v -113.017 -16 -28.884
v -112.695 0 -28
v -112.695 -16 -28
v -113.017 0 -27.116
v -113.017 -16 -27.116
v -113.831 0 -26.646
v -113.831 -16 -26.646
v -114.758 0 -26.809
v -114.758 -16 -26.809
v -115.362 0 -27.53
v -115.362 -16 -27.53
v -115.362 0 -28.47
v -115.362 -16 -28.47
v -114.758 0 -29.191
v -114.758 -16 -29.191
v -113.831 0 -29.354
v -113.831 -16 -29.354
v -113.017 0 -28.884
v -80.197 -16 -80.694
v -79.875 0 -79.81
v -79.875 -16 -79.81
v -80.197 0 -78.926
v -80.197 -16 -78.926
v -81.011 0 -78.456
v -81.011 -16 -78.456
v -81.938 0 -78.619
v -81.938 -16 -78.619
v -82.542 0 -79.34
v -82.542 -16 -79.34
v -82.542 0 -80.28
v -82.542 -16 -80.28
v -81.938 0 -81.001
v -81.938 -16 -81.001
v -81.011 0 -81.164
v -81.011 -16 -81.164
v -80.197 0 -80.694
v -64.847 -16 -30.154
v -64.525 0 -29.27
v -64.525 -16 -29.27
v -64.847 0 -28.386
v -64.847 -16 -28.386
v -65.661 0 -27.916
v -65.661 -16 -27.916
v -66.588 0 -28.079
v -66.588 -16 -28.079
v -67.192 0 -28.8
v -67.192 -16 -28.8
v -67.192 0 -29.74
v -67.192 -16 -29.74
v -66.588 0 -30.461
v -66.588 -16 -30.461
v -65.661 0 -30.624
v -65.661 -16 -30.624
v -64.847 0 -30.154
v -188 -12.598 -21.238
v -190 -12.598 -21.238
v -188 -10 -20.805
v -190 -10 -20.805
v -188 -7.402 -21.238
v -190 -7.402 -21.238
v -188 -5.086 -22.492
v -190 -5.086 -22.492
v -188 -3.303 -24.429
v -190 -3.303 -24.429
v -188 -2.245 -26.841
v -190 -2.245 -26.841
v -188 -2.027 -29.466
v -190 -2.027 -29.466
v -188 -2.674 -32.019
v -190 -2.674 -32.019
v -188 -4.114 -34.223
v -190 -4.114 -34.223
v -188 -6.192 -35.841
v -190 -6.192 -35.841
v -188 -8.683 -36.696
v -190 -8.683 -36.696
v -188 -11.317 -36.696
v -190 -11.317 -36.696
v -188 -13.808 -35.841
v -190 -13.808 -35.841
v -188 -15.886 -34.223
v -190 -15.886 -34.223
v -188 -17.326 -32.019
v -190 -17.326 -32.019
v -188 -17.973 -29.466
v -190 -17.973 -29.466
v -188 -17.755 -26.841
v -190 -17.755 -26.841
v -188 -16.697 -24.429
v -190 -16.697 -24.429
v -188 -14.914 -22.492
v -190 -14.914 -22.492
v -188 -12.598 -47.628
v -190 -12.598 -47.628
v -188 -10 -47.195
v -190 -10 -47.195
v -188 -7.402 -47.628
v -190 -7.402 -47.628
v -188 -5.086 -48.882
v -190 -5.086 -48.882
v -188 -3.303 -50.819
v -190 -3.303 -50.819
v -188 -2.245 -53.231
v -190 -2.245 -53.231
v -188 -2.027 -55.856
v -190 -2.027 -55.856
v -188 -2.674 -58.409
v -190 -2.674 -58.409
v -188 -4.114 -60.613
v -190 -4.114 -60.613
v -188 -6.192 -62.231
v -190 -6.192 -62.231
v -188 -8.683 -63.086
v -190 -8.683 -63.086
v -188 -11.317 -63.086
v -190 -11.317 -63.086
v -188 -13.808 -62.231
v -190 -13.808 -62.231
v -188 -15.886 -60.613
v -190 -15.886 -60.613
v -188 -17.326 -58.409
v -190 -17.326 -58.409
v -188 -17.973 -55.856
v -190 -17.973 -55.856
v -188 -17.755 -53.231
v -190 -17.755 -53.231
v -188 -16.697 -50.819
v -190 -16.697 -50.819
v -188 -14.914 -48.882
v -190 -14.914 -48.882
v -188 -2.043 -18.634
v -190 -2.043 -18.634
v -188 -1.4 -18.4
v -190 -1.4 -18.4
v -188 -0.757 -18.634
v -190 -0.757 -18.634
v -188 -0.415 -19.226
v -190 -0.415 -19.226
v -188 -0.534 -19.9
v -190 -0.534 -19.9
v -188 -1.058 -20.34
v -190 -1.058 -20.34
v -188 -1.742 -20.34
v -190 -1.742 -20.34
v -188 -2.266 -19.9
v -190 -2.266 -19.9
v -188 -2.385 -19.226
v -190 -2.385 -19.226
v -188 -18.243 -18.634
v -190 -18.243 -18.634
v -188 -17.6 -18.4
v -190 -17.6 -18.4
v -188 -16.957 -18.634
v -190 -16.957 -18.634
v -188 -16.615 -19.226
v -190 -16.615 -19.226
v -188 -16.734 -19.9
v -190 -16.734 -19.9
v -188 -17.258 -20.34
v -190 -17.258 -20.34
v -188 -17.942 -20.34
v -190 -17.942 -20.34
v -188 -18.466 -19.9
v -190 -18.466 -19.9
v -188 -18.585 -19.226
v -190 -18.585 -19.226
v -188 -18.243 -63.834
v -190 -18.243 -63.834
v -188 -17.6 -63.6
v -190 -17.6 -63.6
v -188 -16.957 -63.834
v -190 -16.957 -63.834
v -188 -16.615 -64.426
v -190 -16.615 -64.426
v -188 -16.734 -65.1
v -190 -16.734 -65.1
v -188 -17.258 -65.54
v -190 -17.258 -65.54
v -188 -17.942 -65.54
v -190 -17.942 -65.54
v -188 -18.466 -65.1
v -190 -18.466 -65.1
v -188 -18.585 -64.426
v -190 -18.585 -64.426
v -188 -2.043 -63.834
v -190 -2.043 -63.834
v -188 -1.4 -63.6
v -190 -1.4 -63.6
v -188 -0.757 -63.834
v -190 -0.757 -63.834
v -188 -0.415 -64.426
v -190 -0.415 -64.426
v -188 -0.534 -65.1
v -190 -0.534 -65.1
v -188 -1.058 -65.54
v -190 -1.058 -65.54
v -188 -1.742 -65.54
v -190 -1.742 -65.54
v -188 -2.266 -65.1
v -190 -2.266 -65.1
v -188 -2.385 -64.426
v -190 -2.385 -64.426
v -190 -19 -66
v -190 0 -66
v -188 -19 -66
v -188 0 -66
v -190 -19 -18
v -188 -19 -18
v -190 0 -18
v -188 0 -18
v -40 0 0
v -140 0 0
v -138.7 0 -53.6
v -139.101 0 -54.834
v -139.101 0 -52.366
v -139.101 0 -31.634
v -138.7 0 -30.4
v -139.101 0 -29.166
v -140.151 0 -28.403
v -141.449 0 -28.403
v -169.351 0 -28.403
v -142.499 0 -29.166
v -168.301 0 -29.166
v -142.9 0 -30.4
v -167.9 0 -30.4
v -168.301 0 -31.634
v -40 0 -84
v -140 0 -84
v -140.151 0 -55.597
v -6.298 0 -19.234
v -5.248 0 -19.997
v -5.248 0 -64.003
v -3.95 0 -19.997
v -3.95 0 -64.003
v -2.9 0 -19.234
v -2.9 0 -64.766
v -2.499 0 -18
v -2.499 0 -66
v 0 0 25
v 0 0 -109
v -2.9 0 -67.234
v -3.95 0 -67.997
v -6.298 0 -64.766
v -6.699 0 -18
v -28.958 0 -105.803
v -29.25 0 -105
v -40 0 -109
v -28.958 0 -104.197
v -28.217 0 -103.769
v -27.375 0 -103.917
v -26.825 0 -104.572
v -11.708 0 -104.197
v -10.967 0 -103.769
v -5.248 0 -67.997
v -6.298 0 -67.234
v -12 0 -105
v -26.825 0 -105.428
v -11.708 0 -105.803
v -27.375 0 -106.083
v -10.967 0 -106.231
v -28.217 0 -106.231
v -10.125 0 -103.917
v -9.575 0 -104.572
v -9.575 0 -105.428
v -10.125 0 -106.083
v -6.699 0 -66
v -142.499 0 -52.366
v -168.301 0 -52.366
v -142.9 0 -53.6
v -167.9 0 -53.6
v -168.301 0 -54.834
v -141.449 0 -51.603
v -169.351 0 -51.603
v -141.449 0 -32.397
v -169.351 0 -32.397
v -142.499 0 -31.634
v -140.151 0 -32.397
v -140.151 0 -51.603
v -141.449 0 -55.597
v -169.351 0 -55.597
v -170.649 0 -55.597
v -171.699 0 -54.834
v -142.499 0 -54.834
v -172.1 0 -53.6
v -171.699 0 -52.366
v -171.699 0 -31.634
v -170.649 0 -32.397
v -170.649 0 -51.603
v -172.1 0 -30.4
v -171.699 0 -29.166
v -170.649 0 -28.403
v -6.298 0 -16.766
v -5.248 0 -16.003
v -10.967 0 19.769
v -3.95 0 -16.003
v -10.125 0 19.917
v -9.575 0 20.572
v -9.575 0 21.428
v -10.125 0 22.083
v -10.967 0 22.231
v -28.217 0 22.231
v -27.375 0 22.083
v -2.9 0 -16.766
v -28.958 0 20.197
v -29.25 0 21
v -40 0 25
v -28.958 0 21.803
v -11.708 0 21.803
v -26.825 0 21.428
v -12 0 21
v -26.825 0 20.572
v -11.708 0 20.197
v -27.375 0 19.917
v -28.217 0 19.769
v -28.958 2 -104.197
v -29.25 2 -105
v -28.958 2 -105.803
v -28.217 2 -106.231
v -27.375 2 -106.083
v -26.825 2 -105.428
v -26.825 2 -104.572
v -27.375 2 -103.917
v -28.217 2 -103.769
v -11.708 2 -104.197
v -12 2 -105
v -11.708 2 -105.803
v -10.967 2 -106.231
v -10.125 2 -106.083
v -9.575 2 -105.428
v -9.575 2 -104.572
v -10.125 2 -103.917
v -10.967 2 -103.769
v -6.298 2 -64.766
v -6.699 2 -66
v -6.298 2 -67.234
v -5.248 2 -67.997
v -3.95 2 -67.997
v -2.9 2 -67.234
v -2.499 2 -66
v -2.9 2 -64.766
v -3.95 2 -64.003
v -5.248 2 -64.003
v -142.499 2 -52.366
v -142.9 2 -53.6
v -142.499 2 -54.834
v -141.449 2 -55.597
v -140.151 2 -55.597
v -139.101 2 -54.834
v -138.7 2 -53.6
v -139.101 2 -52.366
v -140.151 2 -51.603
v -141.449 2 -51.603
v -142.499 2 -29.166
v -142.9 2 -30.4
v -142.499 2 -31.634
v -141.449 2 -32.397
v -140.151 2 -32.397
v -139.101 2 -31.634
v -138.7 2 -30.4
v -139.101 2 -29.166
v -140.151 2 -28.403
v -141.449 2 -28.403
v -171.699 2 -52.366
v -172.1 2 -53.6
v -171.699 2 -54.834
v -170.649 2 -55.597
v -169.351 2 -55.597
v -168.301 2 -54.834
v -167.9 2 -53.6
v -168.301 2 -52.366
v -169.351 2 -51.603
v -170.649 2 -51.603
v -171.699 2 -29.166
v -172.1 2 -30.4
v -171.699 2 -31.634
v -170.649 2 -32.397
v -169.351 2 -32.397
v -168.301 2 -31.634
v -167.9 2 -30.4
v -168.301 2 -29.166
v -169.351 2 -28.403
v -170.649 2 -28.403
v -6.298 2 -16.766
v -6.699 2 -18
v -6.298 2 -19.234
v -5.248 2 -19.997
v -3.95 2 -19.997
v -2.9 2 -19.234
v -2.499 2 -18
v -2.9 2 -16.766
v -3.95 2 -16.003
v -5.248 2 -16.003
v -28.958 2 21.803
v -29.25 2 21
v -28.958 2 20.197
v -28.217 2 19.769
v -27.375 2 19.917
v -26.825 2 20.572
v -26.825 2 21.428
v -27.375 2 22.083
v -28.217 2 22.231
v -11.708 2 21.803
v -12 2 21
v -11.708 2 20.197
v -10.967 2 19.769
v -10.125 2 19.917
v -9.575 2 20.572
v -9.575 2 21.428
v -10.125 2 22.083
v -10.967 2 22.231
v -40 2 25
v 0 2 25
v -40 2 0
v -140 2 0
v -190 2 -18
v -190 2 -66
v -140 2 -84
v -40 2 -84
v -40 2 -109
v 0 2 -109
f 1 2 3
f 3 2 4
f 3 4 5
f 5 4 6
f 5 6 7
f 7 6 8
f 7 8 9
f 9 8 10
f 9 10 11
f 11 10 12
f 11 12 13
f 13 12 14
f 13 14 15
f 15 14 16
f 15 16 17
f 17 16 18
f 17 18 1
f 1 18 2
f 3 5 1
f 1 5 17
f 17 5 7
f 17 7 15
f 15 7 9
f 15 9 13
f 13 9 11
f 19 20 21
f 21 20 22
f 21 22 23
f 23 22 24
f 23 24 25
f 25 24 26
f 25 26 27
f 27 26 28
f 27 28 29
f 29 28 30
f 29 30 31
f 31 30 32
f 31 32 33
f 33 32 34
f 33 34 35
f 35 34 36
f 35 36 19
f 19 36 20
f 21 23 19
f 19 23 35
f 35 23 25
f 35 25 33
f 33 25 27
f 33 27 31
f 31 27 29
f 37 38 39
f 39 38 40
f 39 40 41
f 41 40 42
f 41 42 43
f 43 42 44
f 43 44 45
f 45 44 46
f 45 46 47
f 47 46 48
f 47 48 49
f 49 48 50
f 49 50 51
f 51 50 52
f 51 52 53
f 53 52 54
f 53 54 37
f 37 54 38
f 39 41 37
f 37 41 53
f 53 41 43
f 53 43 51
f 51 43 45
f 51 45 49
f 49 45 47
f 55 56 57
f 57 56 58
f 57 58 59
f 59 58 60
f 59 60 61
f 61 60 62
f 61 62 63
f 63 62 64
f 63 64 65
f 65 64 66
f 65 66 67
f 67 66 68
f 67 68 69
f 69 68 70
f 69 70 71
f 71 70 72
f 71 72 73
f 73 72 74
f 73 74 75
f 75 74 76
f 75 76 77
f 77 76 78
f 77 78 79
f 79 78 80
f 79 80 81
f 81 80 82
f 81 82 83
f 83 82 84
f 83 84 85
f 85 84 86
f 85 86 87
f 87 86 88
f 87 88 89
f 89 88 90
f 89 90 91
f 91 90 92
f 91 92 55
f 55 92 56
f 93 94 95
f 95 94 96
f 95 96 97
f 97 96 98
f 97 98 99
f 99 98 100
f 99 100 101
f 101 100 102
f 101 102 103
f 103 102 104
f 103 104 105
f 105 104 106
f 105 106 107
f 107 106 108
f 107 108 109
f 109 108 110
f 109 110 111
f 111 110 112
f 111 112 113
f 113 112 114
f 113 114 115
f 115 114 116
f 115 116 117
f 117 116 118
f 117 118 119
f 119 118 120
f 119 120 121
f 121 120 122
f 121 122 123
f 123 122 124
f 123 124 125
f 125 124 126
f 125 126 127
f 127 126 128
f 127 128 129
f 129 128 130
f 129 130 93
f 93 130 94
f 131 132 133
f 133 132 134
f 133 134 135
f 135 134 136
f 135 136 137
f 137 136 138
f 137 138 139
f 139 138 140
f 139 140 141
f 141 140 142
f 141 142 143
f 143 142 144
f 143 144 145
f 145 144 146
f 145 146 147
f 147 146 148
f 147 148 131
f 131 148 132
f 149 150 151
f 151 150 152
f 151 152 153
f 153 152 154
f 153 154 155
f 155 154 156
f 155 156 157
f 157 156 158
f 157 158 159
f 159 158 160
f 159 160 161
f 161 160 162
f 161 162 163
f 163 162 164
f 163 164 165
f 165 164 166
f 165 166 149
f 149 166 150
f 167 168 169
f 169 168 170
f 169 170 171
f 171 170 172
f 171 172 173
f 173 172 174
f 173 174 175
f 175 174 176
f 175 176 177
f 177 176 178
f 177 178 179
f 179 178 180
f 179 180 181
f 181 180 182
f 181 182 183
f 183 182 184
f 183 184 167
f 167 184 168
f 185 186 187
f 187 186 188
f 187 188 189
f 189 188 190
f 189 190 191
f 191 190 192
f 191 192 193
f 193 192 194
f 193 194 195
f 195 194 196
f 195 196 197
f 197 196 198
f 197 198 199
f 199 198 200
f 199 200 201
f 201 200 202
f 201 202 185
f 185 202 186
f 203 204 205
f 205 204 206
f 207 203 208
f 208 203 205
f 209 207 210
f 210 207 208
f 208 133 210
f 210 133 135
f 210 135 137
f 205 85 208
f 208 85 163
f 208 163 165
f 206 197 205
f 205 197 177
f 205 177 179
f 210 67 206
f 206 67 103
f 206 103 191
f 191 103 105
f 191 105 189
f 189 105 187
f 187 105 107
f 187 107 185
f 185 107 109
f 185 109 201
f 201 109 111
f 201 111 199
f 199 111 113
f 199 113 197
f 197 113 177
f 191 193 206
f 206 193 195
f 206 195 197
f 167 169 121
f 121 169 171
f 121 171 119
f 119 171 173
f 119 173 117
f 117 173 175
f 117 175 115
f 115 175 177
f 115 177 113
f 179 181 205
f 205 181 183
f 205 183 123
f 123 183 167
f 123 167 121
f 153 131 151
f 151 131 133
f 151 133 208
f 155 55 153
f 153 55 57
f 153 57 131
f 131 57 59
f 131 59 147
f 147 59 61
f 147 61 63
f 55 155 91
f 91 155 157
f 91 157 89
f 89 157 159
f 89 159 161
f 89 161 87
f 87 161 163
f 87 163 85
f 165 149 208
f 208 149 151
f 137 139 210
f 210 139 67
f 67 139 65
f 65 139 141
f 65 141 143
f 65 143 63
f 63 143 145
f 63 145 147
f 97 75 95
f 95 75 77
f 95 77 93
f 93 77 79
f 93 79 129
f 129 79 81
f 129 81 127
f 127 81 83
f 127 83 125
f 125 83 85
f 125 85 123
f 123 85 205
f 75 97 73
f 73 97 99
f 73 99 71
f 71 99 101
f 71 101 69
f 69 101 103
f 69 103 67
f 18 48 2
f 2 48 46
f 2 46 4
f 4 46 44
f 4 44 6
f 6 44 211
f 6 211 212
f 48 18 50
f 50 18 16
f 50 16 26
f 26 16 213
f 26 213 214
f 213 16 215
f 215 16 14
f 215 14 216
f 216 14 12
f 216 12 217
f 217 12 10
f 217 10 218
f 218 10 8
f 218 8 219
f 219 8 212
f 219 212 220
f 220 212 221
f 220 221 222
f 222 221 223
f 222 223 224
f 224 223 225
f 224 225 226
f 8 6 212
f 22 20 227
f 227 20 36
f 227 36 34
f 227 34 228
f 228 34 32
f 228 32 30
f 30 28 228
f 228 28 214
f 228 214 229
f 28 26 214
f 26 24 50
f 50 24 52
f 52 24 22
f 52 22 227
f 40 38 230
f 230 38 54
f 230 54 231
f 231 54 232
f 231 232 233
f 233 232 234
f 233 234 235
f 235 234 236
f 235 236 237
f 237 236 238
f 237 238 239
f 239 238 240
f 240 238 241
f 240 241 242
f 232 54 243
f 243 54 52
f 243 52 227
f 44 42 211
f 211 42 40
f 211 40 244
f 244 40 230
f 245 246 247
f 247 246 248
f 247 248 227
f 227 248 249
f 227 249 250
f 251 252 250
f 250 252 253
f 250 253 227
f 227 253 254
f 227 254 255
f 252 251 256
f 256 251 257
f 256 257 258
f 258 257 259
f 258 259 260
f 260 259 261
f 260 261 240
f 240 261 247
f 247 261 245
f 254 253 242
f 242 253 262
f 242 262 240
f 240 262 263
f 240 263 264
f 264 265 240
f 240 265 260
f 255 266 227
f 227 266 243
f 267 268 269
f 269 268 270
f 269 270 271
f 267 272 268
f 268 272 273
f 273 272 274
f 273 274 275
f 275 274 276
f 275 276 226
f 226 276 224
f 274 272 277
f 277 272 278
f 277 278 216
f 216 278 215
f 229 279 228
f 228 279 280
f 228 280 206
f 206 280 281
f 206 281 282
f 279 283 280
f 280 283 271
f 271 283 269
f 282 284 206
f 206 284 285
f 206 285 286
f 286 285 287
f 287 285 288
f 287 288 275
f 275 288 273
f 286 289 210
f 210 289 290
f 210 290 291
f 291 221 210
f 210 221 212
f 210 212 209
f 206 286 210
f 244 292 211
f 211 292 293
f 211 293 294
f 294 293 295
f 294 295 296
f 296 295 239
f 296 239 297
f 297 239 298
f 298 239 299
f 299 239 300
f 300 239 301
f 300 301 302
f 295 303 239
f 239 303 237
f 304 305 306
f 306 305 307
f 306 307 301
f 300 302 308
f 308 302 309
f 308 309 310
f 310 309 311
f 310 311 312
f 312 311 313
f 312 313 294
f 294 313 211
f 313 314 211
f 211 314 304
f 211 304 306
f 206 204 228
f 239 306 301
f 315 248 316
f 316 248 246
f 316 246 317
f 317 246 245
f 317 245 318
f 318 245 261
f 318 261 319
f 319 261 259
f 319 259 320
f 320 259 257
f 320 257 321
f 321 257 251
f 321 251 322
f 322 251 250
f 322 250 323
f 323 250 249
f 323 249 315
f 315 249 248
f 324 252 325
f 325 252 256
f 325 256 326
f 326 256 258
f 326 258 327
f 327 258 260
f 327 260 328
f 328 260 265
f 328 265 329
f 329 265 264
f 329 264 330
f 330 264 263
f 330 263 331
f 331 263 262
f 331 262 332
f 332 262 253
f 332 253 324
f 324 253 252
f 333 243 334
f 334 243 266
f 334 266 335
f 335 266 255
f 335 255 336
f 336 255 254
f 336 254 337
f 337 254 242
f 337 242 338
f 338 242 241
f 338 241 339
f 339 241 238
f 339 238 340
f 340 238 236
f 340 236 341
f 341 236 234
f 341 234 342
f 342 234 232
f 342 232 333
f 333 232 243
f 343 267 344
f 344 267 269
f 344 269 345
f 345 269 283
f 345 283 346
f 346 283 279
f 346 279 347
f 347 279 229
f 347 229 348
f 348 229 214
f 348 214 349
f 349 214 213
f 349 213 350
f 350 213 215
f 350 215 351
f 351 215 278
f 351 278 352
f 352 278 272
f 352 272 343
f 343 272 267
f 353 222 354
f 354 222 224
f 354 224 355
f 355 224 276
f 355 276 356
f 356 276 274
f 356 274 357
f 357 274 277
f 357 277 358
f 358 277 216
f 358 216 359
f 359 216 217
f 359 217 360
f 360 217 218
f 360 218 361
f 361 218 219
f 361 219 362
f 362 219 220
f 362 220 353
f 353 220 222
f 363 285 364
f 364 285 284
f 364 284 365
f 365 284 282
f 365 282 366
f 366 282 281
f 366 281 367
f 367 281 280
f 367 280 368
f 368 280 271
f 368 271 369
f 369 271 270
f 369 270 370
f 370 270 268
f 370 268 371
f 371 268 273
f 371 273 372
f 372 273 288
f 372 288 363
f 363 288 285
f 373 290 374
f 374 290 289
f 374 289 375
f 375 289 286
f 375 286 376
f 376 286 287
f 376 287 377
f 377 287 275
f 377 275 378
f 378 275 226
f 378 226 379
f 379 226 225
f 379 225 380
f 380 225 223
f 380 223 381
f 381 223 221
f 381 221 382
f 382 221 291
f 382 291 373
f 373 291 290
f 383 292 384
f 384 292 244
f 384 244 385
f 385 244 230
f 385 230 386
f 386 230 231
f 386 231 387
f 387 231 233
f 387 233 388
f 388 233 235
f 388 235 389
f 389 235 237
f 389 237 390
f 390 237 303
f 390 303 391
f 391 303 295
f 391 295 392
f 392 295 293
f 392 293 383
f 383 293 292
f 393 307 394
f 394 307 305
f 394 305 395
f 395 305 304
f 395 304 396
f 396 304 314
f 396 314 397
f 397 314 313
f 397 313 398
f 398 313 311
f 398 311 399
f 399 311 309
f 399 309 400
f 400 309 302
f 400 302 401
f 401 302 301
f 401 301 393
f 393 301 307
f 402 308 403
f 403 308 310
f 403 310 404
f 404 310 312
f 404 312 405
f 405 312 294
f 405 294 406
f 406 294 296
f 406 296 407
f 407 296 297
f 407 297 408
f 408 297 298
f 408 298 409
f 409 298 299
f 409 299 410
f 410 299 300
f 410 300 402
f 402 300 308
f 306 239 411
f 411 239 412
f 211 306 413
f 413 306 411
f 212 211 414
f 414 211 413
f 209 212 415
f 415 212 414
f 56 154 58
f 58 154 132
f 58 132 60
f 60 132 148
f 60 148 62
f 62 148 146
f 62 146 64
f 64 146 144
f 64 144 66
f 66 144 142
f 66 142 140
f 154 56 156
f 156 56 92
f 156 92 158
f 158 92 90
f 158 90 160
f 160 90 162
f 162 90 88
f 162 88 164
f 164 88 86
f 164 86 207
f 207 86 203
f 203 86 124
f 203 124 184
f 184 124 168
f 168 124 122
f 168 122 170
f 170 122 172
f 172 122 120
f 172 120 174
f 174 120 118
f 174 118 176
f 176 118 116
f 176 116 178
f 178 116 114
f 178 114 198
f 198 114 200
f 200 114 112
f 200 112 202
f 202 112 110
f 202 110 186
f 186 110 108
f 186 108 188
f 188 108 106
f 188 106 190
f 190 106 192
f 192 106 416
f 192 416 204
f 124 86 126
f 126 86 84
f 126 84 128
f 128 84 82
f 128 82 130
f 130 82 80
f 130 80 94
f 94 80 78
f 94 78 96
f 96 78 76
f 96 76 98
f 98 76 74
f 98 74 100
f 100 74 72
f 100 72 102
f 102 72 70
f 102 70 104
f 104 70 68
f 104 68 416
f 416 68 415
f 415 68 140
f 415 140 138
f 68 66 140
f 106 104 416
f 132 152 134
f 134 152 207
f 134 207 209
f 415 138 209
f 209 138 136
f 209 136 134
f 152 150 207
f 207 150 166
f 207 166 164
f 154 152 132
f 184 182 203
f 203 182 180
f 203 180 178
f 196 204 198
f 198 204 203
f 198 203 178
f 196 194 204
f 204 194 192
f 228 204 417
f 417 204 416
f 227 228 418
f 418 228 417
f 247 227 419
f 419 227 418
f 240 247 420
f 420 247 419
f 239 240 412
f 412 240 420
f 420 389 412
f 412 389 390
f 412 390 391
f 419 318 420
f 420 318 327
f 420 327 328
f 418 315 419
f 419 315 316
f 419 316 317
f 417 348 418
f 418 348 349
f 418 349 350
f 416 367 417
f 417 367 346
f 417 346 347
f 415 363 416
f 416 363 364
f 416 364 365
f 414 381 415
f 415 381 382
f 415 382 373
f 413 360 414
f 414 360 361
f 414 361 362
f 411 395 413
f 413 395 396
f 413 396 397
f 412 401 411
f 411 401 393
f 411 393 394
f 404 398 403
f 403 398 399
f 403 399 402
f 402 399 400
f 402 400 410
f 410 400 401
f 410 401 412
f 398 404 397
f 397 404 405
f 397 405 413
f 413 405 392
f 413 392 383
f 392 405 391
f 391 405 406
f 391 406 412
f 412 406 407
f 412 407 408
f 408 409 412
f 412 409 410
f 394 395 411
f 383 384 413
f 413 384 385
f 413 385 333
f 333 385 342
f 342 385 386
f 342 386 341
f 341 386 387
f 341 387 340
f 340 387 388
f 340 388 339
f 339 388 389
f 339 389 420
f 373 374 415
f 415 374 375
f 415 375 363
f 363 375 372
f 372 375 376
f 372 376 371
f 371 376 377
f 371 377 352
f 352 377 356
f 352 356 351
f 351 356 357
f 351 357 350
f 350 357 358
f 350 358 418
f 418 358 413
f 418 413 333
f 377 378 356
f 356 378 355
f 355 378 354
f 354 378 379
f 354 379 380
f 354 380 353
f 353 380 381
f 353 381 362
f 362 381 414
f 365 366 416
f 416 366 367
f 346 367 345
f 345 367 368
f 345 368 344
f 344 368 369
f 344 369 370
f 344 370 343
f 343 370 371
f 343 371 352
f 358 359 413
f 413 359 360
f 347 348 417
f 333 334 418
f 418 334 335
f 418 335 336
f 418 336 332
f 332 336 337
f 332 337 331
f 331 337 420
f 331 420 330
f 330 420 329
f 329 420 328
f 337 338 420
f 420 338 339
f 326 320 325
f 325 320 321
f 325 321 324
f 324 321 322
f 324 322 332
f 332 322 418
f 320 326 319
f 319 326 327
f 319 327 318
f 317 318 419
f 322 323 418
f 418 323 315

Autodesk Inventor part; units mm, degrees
ref_plane "YZ Plane" through (0, 0, 0) normal (1, 0, 0) x (0, 1, 0)
ref_plane "XZ Plane" through (0, 0, 0) normal (0, 1, 0) x (-1, 0, 0)
ref_plane "XY Plane" through (0, 0, 0) normal (0, 0, 1) x (1, 0, 0)
sketch "Szkic1" plane through (0, 0, 0) normal (0, 1, 0) x (-1, 0, 0)
  point P0 (0, 0)
sketch "Szkic2" plane through (0, 0, 0) normal (0, 1, 0) x (-1, 0, 0)
  line L0 (0, 0) -> (140, 0)
  line L1 (190, -18) -> (190, -66)
  line L2 (140, -84) -> (0, -84)
  line L3 (0, -84) -> (0, 0)
  line L4 (140, 0) -> (190, -18)
  line L5 (190, -66) -> (140, -84)
  circle A0 centre (170, -30.4) radius 2.1
  circle A1 centre (170, -53.6) radius 2.1
  line L6 (190, -42) -> (110.3864, -42)
  circle A2 centre (140.8, -30.4) radius 2.1
  circle A3 centre (140.8, -53.6) radius 2.1
  circle A4 centre (10.75, 21) radius 1.25
  circle A5 centre (10.75, -105) radius 1.25
  circle A6 centre (28, 21) radius 1.25
  circle A7 centre (28, -105) radius 1.25
  line L7 (0, -84) -> (40, -84)
  line L8 (40, -84) -> (40, -109)
  line L9 (40, -109) -> (0, -109)
  line L10 (0, -109) -> (0, -84)
  line L11 (0, 0) -> (40, 0)
  line L12 (40, 0) -> (40, 25)
  line L13 (40, 25) -> (0, 25)
  line L14 (0, 25) -> (0, 0)
  circle A8 centre (4.5993, -66) radius 2.1
  circle A9 centre (4.5993, -18) radius 2.1
  point P0 (20, -84)
  point P1 (20, -109)
  point P2 (40, -96.5)
  point P3 (40, 12.5)
  point P4 (0, 12.5)
  point P5 (40, 0)
  point P6 (40, -84)
  dimension "d3" = 48
  dimension "d4" = 140
  dimension "d5" = 84
  dimension "d6" = 4.2
  dimension "d7" = 4.2
  dimension "d8" = 23.2
  dimension "d9" = 11.6
  dimension "d10" = 4.2
  dimension "d11" = 29.2
  dimension "d12" = 4.2
  dimension "d13" = 2.5
  dimension "d14" = 2.5
  dimension "d15" = 2.5
  dimension "d16" = 2.5
  dimension "d17" = 28
  dimension "d18" = 28
  dimension "d19" = 42
  dimension "d20" = 50
  dimension "d21" = 50
  dimension "d46" = 17.25
  dimension "d47" = 17.25
  dimension "d73" = 23.2
  dimension "d74" = 29.2
  dimension "d78" = 20
  dimension "d79" = 20
  dimension "d80" = 49.2
  dimension "d83" = 25
  dimension "d84" = 40
  dimension "d85" = 25
  dimension "d86" = 40
  dimension "d87" = 4
  dimension "d88" = 4
  dimension "d89" = 4
  dimension "d90" = 4
  dimension "d91" = 4.2
  dimension "d92" = 4.2
  dimension "d93" = 18
  dimension "d94" = 18
extrude "Wyciągnięcie proste1" add sketch "Szkic2" along normal blind 2
sketch "Szkic3" plane through (-190, 0, -66) normal (-1, 0, 0) x (0, 0, 1)
  line L0 (0, 2) -> (48, 2) projected
  line L1 (48, 2) -> (0, 2)
  line L2 (0, 2) -> (0, -19)
  line L3 (0, -19) -> (48, -19)
  line L4 (48, -19) -> (48, 2)
  circle A0 centre (37.195, -10) radius 8
  line L5 (0, 0) -> (48, 0) projected
  circle A1 centre (10.805, -10) radius 8
  circle A2 centre (46.6, -1.4) radius 1
  circle A3 centre (46.6, -17.6) radius 1
  circle A4 centre (1.4, -17.6) radius 1
  circle A5 centre (1.4, -1.4) radius 1
  point P0 (66, 0)
  dimension "d24" = 48
  dimension "d25" = 21
  dimension "d26" = 10
  dimension "d28" = 16
  dimension "d29" = 10
  dimension "d31" = 16
  dimension "d32" = 1.4
  dimension "d33" = 1.4
  dimension "d34" = 1.4
  dimension "d35" = 1.4
  dimension "d36" = 1.4
  dimension "d37" = 1.4
  dimension "d38" = 1.4
  dimension "d39" = 1.4
  dimension "d40" = 2
  dimension "d41" = 2
  dimension "d42" = 2
  dimension "d43" = 2
  dimension "d75" = 26.39
  dimension "d76" = 10.805
  dimension "d77" = 10.805
extrude "Wyciągnięcie proste2" add sketch "Szkic3" against normal blind 2 contours L5 L4 L3 L2
sketch "Szkic4" plane through (0, 0, 0) normal (0, -1, 0) x (1, 0, 0)
  line L0 (-140, 0) -> (0, 0) projected
  line L1 (-40, -84) -> (-140, -84) projected
  line L2 (-55, -84) -> (-55, 0)
  line L3 (0, 0) -> (0, -109) projected
  line L4 (-125, -84) -> (-125, 0)
  circle A0 centre (-65.9, -29.27) radius 1.375
  circle A1 centre (-114.07, -28) radius 1.375
  circle A2 centre (-81.25, -79.81) radius 1.375
  point P0 (0, -84)
  point P1 (-70, 0)
  dimension "d60" = 55
  dimension "d61" = 70
  dimension "d62" = 2.75
  dimension "d63" = 10.9
  dimension "d64" = 29.27
  dimension "d65" = 2.75
  dimension "d66" = 28
  dimension "d67" = 59.07
  dimension "d68" = 79.81
  dimension "d69" = 2.75
  dimension "d70" = 26.25
extrude "Wyciągnięcie proste3" add sketch "Szkic4" along normal blind 16 contours A0 | A1 | A2
properties part number "robocik"
